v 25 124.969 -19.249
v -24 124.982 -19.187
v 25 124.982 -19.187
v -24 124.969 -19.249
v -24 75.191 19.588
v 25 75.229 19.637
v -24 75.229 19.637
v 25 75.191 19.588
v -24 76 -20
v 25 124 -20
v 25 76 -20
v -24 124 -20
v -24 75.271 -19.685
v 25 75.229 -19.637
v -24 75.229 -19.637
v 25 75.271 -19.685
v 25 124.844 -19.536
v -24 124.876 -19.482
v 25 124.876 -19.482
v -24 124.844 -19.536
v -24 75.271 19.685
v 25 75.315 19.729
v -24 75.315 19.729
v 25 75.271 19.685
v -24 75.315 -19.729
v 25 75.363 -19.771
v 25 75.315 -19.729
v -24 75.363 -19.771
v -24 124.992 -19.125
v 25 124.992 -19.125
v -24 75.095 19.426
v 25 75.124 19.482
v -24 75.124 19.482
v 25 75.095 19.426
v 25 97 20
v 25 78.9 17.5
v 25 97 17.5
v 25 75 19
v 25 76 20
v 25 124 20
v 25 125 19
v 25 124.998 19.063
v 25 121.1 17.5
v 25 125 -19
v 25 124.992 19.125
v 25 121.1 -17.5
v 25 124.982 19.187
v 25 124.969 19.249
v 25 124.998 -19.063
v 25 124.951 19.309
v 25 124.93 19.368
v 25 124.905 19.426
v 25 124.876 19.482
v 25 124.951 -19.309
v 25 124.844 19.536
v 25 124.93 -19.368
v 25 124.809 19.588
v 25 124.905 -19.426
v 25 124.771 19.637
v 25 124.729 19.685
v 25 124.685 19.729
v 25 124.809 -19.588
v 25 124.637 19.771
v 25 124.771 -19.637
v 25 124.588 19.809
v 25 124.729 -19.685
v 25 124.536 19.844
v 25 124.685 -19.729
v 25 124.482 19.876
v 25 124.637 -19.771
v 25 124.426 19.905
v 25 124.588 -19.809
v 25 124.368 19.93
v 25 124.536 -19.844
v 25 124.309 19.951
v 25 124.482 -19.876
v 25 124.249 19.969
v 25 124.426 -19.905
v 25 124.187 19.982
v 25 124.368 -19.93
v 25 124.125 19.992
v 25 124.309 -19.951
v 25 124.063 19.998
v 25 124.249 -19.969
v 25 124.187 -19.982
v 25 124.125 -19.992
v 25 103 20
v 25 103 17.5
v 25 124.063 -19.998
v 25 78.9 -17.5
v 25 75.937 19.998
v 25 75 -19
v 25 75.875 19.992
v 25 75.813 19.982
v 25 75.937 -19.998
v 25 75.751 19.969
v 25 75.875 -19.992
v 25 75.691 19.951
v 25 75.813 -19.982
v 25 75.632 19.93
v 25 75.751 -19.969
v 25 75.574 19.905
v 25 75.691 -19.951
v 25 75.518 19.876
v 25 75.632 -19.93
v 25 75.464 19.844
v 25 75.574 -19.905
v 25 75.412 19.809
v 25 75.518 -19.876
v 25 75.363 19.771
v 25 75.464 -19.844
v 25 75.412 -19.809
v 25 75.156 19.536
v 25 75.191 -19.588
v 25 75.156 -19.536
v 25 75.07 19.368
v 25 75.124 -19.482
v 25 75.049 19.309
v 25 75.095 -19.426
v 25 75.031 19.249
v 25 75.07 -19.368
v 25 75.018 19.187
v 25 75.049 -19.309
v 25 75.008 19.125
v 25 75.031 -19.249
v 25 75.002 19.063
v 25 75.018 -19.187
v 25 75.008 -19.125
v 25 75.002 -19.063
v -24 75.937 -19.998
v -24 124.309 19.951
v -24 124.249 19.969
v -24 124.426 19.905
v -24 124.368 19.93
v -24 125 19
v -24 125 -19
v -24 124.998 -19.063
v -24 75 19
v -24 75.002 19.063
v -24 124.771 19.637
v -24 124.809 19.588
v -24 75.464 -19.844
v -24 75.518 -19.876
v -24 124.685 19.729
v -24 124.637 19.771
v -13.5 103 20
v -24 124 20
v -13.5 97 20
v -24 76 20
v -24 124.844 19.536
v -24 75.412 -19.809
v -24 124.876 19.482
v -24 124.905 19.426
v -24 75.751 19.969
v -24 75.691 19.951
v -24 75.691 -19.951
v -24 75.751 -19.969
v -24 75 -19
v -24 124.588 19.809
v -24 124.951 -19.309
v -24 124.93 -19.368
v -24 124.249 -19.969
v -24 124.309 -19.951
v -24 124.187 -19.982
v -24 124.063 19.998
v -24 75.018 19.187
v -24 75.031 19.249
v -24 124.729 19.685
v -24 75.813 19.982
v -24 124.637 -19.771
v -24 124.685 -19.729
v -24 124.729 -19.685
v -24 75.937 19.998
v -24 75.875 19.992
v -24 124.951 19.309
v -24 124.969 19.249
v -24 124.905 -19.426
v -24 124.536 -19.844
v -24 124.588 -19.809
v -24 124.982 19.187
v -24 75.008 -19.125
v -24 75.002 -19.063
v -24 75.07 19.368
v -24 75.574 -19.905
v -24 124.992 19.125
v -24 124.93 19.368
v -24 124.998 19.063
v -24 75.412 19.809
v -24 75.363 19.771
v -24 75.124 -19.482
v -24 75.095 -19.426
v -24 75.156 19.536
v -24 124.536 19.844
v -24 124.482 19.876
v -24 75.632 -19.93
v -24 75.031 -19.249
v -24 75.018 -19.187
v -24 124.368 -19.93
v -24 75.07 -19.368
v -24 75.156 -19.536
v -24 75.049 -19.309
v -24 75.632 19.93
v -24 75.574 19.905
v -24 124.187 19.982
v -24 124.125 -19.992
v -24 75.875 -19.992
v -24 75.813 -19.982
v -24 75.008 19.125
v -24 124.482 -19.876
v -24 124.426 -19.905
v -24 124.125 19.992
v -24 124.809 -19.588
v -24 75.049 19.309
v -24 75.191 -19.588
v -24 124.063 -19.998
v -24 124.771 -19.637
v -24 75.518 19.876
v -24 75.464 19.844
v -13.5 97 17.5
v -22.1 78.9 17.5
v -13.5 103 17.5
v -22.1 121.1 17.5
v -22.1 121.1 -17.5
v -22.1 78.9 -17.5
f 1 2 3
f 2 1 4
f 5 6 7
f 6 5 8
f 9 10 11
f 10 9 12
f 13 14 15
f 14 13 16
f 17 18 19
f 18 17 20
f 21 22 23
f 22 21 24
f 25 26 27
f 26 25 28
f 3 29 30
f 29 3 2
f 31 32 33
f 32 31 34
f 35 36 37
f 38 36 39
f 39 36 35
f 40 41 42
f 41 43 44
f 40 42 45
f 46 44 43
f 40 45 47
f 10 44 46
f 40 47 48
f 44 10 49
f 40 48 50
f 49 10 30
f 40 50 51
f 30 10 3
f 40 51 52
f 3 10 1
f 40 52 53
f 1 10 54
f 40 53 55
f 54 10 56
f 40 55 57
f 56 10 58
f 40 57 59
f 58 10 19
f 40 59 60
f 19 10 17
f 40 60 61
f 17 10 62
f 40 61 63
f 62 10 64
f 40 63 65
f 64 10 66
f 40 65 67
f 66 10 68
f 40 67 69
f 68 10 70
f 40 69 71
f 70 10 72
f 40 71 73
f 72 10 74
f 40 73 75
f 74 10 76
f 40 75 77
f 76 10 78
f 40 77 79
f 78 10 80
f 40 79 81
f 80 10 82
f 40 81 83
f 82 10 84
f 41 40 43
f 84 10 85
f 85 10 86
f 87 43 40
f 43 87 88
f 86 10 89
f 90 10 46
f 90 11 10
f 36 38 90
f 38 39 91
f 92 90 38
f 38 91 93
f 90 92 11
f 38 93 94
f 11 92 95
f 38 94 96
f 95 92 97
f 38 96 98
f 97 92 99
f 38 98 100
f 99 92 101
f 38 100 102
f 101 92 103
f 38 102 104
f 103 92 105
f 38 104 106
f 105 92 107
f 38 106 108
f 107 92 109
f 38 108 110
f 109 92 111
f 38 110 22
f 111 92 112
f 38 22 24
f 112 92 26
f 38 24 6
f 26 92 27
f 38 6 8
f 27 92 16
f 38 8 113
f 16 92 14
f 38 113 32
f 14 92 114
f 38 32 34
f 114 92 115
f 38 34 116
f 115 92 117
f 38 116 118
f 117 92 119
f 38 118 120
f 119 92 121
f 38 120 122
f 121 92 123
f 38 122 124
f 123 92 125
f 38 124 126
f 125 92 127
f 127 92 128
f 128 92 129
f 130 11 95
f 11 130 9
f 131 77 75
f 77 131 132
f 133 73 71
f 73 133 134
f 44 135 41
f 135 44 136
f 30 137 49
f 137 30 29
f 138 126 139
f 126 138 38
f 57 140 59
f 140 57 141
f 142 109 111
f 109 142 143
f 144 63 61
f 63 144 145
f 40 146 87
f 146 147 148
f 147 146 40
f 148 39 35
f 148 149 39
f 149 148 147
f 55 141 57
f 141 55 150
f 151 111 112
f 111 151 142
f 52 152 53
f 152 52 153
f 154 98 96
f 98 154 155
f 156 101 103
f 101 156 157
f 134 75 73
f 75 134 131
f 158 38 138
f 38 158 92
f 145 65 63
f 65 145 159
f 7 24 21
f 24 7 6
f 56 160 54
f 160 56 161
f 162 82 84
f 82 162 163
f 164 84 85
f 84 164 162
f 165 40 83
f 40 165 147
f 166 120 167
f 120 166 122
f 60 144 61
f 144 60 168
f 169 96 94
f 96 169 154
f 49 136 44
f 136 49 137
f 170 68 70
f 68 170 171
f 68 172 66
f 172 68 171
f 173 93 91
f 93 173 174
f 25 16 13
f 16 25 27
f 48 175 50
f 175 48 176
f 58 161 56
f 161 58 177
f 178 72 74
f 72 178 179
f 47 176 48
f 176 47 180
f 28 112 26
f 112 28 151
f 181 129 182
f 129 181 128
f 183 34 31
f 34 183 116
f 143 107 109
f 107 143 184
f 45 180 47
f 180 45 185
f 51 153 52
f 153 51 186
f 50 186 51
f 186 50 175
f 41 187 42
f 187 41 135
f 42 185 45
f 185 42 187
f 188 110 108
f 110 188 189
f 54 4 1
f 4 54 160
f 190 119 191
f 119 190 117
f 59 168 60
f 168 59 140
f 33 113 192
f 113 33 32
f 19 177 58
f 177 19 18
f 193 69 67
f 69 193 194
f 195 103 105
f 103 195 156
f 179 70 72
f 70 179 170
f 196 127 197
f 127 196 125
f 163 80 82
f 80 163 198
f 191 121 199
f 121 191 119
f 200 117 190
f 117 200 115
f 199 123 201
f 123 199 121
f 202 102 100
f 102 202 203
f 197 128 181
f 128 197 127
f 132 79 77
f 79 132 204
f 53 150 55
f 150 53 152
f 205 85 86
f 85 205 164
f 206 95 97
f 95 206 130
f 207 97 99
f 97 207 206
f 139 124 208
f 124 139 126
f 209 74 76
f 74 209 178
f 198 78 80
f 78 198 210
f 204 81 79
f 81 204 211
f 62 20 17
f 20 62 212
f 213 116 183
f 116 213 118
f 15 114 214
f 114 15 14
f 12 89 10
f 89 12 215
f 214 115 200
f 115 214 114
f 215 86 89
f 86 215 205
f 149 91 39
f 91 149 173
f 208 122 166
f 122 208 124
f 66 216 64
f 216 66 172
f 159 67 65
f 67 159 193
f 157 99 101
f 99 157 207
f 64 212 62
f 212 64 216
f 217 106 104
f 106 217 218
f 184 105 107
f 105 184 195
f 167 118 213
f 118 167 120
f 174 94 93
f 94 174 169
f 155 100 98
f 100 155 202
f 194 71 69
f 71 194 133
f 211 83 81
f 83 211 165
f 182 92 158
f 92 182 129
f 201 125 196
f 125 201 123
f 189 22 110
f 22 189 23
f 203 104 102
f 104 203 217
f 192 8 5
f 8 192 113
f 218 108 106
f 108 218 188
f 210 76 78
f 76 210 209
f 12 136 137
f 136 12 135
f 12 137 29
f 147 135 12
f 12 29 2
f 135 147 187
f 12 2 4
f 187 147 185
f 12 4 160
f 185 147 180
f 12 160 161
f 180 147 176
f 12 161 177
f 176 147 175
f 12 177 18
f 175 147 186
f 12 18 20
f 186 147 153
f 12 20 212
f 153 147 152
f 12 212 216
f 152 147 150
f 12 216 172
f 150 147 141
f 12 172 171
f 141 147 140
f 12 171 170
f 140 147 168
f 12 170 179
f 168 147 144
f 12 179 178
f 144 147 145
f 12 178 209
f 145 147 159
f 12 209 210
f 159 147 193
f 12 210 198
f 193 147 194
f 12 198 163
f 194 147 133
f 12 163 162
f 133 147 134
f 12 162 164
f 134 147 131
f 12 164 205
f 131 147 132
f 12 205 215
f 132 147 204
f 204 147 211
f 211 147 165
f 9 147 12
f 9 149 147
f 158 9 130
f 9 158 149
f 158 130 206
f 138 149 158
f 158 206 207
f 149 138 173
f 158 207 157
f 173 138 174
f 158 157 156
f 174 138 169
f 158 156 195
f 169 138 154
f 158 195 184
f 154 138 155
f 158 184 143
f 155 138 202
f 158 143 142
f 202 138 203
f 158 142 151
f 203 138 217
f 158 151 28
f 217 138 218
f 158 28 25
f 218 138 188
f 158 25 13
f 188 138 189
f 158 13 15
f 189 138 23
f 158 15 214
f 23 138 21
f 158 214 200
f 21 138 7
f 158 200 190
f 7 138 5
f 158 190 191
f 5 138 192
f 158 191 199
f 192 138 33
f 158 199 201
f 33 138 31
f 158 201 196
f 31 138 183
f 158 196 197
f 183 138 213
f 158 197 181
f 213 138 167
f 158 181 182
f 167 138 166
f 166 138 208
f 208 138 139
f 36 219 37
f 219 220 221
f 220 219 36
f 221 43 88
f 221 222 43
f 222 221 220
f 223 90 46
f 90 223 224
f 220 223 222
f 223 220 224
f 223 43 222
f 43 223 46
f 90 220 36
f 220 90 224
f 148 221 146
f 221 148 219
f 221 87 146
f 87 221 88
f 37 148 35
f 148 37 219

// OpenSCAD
$fn=100;
clearance=0.1;

x=48;
y=128;
h=5;

c_s=2;
c_h=10;
c_x=48;
c_y=52;

do_power=false;
do_mainboard=false;
do_motor=true;
do_limitswitch=false;
do_hotend=false;

// power module
if(do_power)
difference(){
    cube(size=[x, y, h], center=true);
    translate([0,0,1])
    cube(size=[x-1, y-1, h], center=true);
    
    translate([2,0,1])
    cube(size=[x-1, y-5, h], center=true);
    
    translate([-47,0,3])
    cube(size=[c_x, c_y, 5], center=true);
    
    for(i = [0:7]) {
        color("red")
        translate([0, (i*-9)+-5.5*i, 0])
        translate([c_x/2-12,c_y-3,-5])
        linear_extrude(10)
        circle(d = 6, $fn = 100);
    }
}

// mainboard module
mb_x=85.09;
mb_y=86.32;

if(do_mainboard)
translate([-100, 0, 0])
difference(){
    cube(size=[mb_x+1, mb_y+1, 22.5+1], center=true);
    translate([0,0,1])
    cube(size=[mb_x, mb_y, 22.5+1], center=true);
    
    translate([-30, 40, 0])
    cube(size=[24.5, 10, 15], center=true);
    
    translate([-40, -20, 0])
    cube(size=[24.5, 40, 15], center=true);
}

// hotend flsun module
hs_x=60;
hs_y=60;
hs_h=44;
hs_nh=23;
hs_th=9.5;
hs_nw=11;
ns_nh=11;

if(do_hotend)
translate([100, 0, 0])
difference(){
    cube(size=[hs_x+1, hs_y+1, hs_h+1], center=true);
    translate([0,0,1])
    cube(size=[hs_x, hs_y, hs_h], center=true);
    
    translate([0,-50,20-11])
    cube(size=[hs_nw, 100, ns_nh+20], center=true);
}

//limit switch module
ls_x=23;
ls_y=14;
ls_h=7.5;

if(do_limitswitch)
translate([0,-100,0])
difference(){
    cube(size=[ls_x+1, ls_y+1, ls_h+2.4], center=true);
    translate([0, 0, 1])
    cube(size=[ls_x, ls_y, ls_h+2.4], center=true);
    
    translate([0, 10, 2.5])
    cube(size=[10,7, 6], center=true);
    
    translate([0, -10, 2.5])
    cube(size=[13, 11, 6], center=true);
}        

// motor module
if(do_motor)
translate([0,100,0])
difference(){
    minkowski() {
        cube(size=[48, 48, 38], center=true);
        rotate([0,90,0]) 
        cylinder(h = 1, r = 1);
    }
    
    translate([3, 0, 0])
    cube(size=[50.1+clearance, 42.1+clearance, 35], center=true);
    
    translate([-16+25, 0, 21])
    cube(size=[45, 6, 60], center=true);
}
